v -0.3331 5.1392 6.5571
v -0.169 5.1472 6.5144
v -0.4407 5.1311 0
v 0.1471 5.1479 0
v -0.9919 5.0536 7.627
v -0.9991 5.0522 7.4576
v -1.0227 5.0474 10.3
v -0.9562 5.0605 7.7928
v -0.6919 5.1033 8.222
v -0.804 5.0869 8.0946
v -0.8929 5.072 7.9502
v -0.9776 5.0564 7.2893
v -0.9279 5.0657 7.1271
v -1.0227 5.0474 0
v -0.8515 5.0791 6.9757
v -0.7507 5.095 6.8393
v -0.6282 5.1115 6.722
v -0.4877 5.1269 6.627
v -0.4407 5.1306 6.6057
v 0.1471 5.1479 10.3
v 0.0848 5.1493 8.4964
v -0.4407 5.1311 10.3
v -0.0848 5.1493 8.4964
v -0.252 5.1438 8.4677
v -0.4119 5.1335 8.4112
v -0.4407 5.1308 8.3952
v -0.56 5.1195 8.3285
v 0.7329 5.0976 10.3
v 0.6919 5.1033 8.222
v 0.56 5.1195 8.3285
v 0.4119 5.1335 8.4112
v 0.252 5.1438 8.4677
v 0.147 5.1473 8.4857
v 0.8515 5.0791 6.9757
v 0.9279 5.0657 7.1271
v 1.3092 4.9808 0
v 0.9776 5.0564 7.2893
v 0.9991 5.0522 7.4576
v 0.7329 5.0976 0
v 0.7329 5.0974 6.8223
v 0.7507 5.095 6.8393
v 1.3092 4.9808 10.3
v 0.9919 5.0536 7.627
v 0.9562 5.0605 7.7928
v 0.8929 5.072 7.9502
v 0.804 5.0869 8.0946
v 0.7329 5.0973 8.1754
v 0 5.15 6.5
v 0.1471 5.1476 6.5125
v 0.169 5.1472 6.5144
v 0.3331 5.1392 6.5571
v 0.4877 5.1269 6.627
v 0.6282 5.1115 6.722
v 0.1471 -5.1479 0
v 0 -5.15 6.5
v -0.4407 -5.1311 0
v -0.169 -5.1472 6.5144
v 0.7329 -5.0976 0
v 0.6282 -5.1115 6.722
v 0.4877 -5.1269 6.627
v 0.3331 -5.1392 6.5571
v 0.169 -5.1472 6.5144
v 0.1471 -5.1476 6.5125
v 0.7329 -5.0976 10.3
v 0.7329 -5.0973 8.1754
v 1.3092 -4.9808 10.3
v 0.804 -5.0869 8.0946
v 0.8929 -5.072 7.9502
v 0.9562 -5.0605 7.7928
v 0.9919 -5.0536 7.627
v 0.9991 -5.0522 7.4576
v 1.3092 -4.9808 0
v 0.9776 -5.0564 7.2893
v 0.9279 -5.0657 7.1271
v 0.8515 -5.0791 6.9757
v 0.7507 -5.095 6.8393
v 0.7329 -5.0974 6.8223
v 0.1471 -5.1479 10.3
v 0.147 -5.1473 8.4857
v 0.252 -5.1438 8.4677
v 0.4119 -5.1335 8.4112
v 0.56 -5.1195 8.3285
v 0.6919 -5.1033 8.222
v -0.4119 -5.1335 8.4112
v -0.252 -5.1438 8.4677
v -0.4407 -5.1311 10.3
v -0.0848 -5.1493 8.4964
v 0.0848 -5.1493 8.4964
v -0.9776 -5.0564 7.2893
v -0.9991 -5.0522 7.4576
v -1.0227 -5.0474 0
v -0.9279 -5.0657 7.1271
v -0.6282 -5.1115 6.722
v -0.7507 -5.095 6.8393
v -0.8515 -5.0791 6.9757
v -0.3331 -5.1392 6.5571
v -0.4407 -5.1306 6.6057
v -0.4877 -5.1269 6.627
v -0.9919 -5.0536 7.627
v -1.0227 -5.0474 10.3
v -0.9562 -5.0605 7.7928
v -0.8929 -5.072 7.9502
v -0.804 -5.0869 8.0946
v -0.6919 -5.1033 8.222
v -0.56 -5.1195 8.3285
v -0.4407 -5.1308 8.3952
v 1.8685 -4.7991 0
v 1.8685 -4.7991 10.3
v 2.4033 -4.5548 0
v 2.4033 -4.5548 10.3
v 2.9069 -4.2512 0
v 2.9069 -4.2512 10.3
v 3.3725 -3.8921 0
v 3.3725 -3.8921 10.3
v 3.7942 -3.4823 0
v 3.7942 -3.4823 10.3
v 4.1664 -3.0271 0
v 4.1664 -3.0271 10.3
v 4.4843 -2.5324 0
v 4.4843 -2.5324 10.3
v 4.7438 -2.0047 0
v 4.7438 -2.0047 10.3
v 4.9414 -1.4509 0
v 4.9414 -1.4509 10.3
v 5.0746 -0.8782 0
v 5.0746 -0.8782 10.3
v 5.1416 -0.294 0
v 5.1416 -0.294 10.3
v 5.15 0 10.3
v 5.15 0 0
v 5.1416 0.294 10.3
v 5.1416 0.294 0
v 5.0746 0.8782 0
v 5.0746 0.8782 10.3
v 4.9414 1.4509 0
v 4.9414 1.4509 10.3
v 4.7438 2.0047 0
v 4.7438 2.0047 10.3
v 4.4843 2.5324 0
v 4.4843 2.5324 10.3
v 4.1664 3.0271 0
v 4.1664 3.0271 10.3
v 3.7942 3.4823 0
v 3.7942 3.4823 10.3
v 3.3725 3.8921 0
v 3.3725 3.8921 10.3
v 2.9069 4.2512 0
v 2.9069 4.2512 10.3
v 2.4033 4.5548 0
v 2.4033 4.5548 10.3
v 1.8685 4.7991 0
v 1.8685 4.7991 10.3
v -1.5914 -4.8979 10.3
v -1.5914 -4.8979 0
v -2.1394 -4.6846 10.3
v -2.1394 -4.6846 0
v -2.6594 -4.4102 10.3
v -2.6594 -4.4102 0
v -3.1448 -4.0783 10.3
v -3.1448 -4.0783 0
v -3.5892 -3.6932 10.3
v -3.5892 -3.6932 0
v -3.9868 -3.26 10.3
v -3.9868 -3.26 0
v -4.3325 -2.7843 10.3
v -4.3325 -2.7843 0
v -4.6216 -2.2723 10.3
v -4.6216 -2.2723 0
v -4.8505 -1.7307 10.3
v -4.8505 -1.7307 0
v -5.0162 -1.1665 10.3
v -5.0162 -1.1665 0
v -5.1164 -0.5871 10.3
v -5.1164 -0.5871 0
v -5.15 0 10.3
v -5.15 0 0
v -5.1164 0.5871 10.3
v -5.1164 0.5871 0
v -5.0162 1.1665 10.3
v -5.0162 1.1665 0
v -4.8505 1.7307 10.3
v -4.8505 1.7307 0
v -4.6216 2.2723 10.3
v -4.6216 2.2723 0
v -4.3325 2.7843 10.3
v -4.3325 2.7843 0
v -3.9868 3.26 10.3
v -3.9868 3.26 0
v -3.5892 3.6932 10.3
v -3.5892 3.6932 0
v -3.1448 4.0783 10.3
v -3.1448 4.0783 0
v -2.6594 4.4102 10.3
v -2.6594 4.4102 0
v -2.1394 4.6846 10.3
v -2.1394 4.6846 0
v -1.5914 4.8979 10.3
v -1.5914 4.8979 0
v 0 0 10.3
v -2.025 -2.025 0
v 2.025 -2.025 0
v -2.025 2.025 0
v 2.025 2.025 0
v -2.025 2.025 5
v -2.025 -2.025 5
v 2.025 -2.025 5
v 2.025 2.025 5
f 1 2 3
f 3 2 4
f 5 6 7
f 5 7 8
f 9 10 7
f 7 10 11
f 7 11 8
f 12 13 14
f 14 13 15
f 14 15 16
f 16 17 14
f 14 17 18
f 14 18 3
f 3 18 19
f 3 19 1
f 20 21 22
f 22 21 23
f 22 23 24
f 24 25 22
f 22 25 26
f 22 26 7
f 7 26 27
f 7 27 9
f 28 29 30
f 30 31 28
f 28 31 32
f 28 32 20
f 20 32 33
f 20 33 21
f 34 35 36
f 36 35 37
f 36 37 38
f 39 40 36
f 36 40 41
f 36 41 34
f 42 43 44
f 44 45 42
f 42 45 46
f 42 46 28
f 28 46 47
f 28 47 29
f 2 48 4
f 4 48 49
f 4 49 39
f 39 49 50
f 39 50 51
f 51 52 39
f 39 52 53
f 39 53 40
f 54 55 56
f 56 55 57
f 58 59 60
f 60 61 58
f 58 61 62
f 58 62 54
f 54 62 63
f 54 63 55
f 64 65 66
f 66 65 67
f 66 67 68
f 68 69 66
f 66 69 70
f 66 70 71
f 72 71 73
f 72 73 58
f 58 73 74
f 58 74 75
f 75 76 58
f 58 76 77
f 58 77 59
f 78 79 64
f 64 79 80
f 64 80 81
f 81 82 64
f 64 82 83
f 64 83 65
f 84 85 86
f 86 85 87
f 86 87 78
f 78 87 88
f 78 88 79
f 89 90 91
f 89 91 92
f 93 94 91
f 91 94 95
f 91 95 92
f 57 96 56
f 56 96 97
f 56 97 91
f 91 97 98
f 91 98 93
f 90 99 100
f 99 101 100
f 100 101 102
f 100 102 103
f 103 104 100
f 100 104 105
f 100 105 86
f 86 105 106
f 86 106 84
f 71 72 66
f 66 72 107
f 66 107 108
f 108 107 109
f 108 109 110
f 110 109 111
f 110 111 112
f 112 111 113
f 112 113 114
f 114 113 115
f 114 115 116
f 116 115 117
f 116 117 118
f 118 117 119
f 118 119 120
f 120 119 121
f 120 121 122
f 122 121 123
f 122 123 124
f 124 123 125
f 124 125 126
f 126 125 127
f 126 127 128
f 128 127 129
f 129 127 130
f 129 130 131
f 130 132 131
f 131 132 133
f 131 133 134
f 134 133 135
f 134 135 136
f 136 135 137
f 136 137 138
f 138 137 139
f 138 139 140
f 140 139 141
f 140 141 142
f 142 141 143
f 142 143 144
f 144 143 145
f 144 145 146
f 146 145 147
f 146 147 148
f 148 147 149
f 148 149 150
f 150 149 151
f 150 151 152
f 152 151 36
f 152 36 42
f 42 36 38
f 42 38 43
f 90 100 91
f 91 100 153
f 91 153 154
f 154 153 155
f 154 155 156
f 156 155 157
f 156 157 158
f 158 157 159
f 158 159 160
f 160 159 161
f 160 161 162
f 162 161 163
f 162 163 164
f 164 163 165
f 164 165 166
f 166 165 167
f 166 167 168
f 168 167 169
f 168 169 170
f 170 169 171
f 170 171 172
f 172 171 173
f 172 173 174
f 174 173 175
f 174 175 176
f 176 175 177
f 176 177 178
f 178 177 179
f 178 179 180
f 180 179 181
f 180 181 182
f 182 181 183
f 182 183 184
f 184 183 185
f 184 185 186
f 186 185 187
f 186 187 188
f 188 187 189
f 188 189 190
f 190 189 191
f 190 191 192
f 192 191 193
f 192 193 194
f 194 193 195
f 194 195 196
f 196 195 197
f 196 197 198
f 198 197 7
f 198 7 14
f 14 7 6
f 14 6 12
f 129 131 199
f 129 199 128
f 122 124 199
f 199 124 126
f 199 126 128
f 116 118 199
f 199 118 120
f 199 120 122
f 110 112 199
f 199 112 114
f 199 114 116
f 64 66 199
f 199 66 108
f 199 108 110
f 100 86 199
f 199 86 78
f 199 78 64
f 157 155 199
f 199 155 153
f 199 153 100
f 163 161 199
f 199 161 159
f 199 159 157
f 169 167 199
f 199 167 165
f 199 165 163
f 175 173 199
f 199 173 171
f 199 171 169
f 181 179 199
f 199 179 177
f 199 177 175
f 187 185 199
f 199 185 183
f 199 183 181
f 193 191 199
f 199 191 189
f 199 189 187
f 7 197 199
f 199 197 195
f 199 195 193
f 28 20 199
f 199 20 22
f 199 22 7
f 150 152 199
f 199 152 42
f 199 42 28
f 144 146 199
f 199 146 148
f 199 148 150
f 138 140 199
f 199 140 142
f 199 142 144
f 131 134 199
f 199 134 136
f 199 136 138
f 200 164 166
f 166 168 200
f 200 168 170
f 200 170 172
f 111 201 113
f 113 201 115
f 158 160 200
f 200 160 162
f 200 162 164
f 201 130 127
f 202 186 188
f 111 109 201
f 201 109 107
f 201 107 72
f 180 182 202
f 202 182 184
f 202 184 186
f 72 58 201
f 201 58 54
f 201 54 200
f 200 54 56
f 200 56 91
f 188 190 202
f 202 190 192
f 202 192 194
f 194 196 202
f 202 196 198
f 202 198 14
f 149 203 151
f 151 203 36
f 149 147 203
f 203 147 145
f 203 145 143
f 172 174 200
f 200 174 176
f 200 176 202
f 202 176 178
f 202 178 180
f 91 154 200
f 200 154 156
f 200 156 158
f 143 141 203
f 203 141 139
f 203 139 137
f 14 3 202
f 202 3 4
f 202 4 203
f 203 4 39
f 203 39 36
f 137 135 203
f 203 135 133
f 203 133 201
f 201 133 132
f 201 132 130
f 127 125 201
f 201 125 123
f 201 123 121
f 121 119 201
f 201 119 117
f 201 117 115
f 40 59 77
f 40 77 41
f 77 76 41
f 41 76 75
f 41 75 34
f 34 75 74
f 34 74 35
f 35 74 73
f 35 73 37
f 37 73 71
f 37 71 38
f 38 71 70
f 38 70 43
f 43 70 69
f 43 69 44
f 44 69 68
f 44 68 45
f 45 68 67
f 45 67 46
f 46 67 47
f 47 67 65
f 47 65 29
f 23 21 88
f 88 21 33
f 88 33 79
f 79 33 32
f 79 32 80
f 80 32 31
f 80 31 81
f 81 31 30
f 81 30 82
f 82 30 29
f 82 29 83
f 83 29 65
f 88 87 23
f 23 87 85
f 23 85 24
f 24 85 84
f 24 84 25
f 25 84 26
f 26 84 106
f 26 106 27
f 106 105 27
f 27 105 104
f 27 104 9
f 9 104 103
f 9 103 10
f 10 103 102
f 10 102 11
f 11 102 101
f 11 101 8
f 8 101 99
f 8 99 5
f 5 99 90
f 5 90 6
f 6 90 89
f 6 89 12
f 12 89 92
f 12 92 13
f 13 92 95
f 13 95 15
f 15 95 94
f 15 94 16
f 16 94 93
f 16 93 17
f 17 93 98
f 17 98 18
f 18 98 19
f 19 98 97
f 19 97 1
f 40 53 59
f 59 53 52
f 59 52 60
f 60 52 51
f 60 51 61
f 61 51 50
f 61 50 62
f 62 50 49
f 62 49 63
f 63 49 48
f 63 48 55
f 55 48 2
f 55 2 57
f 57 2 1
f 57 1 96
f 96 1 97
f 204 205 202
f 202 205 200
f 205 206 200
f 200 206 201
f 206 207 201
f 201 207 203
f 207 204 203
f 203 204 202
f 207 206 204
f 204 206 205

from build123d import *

# Parameters (mm, degrees)
SKETCH1_R               = 5.15
BOSS_EXTRUDE1_DEPTH     = 10.3
CUT_EXTRUDE1_DEPTH      = 10
CUT_EXTRUDE1_DEPTH_BACK = 10
SKETCH2_R               = 1
SKETCH3_W               = 4.05
SKETCH3_H               = 4.05
CUT_EXTRUDE2_DEPTH      = 5


with BuildPart() as part:
    # Sketch1 → Boss-Extrude1 (new body)
    with BuildSketch(Plane.XY):
        Circle(SKETCH1_R)
    extrude(amount=BOSS_EXTRUDE1_DEPTH)

    # Sketch2 → Cut-Extrude1 (cut, two sides: drawn at the far end of the back side and taken through both)
    with BuildSketch(Plane(origin=(0, 0, 0), x_dir=(1, 0, 0), z_dir=(0, 1, 0)).offset(-CUT_EXTRUDE1_DEPTH_BACK)):
        with Locations((0, -7.5)):
            Circle(SKETCH2_R)
    extrude(amount=CUT_EXTRUDE1_DEPTH + CUT_EXTRUDE1_DEPTH_BACK, mode=Mode.SUBTRACT)

    # Sketch3 → Cut-Extrude2 (cut)
    with BuildSketch(Plane(origin=(0, 0, 0), x_dir=(-1, 0, 0), z_dir=(0, 0, -1))):
        Rectangle(SKETCH3_W, SKETCH3_H)
    extrude(amount=-CUT_EXTRUDE2_DEPTH, mode=Mode.SUBTRACT)


solid = part.part
